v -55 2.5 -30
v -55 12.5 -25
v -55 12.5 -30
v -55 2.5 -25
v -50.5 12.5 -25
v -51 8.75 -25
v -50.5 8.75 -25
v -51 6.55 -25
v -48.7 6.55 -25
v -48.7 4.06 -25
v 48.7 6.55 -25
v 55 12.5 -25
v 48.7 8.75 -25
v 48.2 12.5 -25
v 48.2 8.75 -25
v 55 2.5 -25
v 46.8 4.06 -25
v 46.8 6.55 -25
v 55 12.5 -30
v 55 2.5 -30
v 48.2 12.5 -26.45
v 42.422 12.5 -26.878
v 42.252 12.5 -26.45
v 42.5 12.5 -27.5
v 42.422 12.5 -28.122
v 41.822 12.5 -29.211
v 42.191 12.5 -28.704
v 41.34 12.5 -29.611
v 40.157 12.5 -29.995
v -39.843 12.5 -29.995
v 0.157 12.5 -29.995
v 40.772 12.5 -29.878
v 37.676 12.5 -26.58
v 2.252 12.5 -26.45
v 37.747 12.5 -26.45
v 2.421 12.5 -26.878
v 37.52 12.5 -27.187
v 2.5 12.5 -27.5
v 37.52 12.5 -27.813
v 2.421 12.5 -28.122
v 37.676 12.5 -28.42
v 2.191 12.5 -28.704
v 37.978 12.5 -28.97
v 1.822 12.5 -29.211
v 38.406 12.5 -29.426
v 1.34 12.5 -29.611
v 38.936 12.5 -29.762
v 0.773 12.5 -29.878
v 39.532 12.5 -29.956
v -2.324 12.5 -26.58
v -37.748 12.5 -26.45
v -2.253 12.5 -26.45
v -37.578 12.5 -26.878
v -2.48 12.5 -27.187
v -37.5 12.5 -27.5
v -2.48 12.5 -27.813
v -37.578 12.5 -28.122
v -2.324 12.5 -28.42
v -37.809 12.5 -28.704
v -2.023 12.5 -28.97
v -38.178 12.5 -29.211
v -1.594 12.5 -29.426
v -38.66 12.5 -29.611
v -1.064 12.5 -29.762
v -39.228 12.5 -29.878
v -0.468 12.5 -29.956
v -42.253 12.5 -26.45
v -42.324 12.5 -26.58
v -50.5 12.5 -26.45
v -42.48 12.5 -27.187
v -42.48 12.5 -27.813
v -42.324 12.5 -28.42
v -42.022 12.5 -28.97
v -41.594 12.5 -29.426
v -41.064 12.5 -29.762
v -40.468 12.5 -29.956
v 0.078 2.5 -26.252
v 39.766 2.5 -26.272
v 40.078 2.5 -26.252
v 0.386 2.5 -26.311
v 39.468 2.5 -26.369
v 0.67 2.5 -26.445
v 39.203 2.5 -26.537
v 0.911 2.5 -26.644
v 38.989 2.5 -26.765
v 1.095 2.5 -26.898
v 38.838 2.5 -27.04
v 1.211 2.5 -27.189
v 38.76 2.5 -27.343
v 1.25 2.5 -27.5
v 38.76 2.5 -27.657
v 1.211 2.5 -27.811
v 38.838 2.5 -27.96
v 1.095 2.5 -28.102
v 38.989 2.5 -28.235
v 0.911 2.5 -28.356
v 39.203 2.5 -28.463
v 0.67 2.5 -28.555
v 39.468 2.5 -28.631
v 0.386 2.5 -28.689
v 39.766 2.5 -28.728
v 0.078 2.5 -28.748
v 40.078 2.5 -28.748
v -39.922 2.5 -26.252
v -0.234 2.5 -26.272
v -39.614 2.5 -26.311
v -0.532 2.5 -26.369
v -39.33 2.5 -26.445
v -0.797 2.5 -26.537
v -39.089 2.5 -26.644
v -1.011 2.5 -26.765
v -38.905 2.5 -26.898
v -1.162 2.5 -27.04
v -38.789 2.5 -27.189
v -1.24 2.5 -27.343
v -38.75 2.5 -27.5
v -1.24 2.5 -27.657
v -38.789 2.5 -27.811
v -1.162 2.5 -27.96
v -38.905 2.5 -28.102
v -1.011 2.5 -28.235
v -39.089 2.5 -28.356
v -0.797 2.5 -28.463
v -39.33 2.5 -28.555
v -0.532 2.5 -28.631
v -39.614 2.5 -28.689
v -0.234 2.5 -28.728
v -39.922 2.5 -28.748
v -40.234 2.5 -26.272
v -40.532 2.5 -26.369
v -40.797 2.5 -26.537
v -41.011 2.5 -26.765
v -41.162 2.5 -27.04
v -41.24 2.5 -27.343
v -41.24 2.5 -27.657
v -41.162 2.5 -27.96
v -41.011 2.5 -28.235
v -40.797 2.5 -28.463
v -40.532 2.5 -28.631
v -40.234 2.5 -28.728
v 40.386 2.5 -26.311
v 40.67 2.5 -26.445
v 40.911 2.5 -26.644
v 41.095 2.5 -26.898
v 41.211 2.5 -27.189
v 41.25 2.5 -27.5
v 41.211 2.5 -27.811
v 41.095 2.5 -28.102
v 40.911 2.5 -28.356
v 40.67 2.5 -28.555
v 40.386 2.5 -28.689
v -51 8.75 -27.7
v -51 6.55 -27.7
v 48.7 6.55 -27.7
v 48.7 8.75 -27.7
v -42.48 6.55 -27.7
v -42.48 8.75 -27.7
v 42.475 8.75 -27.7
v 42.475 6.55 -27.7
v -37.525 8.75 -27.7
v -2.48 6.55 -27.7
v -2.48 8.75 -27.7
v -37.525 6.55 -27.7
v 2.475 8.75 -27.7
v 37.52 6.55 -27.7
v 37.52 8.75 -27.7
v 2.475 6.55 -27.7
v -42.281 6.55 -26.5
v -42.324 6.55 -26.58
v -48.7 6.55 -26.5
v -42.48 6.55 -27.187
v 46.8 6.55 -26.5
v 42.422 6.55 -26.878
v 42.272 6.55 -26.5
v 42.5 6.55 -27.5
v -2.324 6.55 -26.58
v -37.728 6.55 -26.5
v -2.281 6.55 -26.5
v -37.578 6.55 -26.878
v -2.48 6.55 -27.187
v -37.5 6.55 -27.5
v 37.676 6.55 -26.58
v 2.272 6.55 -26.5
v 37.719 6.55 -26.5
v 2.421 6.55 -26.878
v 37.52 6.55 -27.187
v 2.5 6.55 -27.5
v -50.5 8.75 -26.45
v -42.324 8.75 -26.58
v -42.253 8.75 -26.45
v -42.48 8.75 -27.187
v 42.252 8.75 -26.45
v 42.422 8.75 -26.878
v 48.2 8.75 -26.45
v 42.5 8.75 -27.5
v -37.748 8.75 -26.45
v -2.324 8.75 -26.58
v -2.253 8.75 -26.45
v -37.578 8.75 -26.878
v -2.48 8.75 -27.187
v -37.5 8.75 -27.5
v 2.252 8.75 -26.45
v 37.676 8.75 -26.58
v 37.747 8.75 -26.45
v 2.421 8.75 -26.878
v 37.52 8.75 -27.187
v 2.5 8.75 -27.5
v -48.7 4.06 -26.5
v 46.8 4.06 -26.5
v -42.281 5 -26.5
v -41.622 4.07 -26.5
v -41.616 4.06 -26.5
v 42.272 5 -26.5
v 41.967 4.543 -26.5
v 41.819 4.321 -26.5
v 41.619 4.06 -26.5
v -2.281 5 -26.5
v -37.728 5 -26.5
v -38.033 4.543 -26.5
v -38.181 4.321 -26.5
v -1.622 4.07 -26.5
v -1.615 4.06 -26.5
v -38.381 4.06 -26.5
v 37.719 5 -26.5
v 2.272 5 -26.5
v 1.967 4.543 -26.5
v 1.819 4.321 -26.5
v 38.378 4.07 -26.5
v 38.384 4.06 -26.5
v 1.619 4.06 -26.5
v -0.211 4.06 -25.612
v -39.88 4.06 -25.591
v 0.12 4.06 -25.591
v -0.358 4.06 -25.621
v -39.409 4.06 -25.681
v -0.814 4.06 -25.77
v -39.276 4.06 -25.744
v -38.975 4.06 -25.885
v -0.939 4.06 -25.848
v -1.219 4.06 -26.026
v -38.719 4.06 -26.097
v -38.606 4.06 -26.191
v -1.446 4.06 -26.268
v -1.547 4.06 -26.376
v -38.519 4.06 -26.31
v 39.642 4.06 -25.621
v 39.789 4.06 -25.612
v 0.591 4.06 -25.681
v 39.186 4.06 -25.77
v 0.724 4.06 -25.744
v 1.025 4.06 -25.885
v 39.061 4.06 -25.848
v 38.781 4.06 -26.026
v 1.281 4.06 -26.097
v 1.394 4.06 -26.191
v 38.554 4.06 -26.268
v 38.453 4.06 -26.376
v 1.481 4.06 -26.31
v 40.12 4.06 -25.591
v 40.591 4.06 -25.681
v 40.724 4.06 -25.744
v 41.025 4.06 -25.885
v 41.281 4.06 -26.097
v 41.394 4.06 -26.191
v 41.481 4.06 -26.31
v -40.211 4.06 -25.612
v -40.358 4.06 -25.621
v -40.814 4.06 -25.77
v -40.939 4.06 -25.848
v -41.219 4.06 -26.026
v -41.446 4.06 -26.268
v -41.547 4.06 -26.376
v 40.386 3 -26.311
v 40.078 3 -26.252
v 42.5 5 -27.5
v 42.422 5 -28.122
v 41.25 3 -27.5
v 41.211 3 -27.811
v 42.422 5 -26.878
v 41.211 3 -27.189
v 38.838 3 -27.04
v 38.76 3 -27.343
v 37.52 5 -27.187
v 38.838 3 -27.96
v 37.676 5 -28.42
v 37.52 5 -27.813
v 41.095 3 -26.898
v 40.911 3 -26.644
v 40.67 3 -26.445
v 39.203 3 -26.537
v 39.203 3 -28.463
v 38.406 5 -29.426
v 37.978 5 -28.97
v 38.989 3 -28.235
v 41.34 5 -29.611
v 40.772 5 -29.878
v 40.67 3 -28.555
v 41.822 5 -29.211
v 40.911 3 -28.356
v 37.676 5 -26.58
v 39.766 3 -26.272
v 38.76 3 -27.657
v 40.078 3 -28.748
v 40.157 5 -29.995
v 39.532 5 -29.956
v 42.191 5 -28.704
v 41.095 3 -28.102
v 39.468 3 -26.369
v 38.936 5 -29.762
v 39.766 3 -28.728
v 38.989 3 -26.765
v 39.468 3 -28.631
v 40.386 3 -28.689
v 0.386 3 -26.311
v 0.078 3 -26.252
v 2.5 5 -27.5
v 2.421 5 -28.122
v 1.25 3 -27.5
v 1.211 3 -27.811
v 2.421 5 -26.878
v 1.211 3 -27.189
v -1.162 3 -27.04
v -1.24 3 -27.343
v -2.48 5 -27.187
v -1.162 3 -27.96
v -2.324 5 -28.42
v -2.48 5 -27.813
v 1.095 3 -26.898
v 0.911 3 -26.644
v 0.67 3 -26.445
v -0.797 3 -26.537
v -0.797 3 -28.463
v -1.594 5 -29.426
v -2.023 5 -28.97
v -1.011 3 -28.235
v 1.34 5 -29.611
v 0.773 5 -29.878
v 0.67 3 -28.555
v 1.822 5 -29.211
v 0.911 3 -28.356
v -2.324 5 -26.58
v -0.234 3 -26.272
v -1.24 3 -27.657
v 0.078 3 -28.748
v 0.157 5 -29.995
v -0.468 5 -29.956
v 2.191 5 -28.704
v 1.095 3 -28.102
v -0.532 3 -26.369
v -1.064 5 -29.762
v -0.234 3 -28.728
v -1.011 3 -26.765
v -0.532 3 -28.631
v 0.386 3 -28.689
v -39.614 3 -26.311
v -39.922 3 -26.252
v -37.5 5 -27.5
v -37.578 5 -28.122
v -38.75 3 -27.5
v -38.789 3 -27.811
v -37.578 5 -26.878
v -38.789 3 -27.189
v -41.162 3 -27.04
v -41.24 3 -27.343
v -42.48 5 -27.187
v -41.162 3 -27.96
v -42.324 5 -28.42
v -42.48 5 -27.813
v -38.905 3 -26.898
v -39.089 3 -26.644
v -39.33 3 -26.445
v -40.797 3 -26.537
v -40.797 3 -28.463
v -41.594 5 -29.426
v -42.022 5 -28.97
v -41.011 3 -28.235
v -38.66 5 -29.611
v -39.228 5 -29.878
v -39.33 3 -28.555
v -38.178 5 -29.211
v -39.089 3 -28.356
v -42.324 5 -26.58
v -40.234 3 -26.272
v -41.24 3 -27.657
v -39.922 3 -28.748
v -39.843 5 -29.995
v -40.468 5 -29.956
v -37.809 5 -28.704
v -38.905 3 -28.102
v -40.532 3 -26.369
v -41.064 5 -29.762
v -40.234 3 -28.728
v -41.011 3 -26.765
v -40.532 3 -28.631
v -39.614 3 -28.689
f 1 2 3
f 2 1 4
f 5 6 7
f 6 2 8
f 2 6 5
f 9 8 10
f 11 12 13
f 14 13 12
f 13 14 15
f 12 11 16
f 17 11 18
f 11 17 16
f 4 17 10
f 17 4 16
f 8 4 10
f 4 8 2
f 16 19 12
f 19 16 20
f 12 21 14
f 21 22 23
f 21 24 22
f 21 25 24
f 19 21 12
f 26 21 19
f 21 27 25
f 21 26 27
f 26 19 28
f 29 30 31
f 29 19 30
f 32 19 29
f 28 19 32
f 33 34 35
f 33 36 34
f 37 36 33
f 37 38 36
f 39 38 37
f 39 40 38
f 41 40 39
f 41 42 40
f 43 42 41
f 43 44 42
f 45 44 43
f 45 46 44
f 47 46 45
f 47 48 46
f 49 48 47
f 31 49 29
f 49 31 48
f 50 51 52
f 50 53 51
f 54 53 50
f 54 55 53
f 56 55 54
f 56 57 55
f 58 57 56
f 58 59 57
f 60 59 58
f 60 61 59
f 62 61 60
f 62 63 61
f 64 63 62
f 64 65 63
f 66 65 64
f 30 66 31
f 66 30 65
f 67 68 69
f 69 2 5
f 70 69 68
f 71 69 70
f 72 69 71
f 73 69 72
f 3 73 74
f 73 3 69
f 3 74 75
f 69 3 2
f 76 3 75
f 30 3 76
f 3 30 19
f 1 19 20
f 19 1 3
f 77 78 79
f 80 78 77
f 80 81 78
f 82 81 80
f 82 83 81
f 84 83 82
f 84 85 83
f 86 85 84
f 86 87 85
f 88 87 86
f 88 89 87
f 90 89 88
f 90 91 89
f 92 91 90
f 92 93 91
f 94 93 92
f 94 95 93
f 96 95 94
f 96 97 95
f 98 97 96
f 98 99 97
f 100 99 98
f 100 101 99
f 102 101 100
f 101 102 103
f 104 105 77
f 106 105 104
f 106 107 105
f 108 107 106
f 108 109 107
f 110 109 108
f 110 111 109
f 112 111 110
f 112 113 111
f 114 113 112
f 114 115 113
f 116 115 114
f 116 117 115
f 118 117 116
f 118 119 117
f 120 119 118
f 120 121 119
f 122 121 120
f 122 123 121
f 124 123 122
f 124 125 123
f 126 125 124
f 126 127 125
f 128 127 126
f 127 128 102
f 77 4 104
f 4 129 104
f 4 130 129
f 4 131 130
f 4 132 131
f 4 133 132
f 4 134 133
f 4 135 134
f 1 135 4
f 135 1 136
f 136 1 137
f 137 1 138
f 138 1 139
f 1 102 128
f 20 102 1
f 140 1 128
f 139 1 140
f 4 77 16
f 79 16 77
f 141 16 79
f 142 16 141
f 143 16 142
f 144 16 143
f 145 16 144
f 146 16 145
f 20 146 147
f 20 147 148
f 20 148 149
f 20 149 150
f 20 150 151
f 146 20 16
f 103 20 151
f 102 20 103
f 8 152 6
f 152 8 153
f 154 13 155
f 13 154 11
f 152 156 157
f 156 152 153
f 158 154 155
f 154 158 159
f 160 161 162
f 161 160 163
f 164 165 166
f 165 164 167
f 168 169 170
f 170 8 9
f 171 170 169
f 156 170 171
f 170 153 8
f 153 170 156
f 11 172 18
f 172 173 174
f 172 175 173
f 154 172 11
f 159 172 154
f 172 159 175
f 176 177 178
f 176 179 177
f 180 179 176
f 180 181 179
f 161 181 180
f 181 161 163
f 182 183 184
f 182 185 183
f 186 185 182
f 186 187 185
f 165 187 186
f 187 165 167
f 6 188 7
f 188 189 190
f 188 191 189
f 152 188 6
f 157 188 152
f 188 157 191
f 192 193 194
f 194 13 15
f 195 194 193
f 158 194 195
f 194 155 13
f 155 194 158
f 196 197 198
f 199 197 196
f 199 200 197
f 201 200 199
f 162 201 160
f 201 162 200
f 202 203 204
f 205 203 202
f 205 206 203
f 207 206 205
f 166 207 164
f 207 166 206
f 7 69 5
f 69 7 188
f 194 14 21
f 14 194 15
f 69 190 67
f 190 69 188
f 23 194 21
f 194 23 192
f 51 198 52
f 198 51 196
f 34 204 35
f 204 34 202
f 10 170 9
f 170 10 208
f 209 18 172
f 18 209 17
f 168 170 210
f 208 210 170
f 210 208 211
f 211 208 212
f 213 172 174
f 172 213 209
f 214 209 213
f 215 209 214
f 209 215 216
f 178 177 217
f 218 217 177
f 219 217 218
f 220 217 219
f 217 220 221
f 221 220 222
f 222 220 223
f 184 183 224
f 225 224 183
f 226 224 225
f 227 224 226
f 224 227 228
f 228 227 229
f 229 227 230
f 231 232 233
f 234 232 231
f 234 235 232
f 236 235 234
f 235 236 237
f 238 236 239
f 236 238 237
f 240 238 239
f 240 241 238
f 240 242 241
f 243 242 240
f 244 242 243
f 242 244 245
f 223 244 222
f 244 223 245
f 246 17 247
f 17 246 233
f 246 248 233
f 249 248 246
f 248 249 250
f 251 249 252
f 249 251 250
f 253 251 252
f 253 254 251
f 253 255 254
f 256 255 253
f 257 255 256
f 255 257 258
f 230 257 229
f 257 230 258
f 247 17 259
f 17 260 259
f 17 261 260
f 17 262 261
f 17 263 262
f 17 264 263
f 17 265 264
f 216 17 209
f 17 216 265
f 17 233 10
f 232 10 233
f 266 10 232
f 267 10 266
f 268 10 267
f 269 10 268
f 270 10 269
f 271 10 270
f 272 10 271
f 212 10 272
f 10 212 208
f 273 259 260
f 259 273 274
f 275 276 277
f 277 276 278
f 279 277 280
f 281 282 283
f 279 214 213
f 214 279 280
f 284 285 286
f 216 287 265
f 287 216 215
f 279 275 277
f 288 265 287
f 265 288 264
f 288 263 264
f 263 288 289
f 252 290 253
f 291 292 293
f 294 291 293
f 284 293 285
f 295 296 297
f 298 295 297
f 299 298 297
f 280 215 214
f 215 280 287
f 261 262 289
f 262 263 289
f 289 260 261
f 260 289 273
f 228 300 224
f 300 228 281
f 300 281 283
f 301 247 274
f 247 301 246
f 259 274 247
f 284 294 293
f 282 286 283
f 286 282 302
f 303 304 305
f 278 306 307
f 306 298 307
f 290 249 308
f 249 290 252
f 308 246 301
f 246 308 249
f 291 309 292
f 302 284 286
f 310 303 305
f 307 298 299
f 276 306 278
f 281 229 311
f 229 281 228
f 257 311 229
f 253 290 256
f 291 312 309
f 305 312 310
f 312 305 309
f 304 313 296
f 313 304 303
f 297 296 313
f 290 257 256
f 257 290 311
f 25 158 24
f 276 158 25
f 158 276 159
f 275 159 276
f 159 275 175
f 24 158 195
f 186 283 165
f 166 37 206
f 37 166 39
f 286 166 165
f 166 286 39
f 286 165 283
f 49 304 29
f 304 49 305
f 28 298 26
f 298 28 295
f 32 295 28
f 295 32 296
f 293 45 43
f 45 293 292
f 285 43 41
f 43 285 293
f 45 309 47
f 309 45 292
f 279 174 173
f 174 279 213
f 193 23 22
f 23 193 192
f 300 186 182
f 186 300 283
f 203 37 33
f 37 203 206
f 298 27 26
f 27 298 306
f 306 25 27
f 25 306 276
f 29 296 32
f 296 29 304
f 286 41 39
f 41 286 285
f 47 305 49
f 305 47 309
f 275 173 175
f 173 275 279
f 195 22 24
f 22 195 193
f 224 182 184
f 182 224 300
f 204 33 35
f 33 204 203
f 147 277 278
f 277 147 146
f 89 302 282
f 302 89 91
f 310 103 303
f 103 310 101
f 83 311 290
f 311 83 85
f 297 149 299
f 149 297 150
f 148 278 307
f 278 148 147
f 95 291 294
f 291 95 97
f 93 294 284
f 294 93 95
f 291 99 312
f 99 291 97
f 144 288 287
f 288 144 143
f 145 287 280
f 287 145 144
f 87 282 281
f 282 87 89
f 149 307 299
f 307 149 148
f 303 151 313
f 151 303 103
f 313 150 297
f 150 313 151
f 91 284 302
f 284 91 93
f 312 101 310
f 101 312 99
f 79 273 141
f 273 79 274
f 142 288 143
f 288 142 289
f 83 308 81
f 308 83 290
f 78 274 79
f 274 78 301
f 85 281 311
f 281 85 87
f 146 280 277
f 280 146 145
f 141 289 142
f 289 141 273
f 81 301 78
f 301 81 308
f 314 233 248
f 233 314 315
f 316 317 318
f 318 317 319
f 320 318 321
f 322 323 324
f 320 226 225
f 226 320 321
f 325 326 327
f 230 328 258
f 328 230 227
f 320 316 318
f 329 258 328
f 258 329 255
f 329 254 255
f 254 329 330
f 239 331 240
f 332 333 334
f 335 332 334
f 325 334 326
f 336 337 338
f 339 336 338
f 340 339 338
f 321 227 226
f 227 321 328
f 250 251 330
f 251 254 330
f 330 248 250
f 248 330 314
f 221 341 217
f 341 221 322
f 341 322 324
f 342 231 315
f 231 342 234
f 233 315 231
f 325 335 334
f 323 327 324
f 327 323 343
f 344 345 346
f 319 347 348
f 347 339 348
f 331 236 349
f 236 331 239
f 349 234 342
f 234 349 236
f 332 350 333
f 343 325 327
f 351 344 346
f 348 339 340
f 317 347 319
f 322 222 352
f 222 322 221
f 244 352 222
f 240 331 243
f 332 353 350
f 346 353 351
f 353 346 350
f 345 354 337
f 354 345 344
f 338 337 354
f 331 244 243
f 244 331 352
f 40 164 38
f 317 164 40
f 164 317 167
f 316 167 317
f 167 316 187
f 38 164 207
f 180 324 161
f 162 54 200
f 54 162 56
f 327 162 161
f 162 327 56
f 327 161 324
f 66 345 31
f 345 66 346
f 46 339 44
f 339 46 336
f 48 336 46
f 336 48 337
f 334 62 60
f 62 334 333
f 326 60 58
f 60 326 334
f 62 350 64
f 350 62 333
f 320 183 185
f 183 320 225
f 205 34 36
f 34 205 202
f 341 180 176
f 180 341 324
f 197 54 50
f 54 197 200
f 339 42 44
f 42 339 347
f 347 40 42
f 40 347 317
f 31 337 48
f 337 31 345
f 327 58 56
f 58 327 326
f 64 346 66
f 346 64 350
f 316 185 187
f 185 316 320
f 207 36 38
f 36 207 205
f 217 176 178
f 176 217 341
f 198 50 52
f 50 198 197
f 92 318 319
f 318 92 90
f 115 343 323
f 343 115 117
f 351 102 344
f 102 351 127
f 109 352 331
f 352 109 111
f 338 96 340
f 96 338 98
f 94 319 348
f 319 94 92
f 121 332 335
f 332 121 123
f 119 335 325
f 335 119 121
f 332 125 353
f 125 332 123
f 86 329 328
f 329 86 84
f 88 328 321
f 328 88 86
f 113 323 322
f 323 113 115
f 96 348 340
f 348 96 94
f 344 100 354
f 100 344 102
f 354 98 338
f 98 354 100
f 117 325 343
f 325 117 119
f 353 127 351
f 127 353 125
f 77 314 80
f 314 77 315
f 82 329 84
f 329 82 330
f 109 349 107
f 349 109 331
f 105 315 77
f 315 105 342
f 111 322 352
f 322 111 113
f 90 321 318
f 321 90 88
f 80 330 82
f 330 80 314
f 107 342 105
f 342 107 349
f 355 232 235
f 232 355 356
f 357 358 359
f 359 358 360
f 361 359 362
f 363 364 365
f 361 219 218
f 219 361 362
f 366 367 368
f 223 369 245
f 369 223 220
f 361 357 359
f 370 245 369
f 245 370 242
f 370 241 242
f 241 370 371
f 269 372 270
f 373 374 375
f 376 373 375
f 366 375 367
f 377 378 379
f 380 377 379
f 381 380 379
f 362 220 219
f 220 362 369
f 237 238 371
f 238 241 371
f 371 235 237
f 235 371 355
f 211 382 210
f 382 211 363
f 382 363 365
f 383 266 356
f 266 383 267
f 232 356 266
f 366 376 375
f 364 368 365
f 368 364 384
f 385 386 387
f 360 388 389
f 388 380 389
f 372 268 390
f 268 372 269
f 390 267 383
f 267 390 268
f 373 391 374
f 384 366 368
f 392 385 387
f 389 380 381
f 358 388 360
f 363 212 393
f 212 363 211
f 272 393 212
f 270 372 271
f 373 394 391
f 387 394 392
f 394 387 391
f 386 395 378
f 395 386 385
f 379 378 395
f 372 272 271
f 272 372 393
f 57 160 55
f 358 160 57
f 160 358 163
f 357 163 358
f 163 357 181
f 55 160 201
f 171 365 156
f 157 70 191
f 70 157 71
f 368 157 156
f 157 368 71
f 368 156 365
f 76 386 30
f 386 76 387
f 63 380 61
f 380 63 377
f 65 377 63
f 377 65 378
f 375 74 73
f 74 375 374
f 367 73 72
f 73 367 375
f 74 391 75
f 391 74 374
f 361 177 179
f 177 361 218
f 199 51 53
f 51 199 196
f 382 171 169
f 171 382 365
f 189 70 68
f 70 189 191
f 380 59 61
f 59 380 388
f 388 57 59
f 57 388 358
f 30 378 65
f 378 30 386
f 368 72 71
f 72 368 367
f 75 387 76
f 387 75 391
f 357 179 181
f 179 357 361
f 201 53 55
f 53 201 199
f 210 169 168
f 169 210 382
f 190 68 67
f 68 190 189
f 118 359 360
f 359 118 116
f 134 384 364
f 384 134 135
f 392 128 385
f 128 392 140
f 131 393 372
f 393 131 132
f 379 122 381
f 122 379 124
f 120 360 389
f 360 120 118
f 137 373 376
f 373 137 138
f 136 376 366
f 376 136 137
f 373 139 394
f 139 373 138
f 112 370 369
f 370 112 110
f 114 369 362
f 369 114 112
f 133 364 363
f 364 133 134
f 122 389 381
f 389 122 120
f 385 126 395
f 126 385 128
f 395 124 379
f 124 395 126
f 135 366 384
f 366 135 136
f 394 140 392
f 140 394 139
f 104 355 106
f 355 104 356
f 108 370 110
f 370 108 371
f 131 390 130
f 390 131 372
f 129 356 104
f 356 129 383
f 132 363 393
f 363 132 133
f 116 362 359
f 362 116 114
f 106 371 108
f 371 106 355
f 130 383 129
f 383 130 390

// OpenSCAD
// file: openscad-extra/src/countersink.scad
/*
Countersink depression for tapered screw heads.
*/

module make_countersink(d1=0, d2=0, h=0, outer=10, inner=0, $fn=25){
    /*
    d1 = shaft diameter
    d2 = head diameter
    h = height of taper
    outer = height of head mass
    inner = height of shaft mass, including taper
    */
    default_taper_height = 2;
    d1 = d1 ? d1 : 2.5;
    d2 = d2 ? d2 : 5;
    h = h ? h : default_taper_height;
    inner = (inner ? inner : 10) - default_taper_height;
    
    translate([0, 0, -default_taper_height/2])
    union(){
        
        // taper
        cylinder(d1=d1, d2=d2, h=h, center=true, $fn=$fn);
    
        // big top
    	translate([0, 0, h/2])
    	cylinder(d=d2, h=outer, center=false, $fn=$fn);
        
    	// lower bottom
    	translate([0, 0, -h/2-inner])
    	cylinder(d=d1, h=inner, center=false, $fn=$fn);
	}
}

make_countersink(inner=10);

color("blue")
translate([0,2,0])
cylinder(d=2.5, h=20, center=true, $fn=100);
// file: arduino_mega_mount.scad
use <openscad-extra/src/countersink.scad>;

// mega needs 3mm of clearance below it
module arduino_mega_mount(){
    difference(){
        for(i=[-1:2:1])
        translate([0,7.5,(25+2.5)*i])
        cube([110,10,5], center=true);
        
        translate([-1.15,7.65,-.75])
        color("orange")
        arduino_mega_board(buffer=0.5);

        color("red"){
            // top mount holes
            for(i=[0:2])
            translate([40-40*i,12.5,30-2.5])
            rotate([-90,0,0])
            make_countersink(d1=2.5, d2=5, inner=20);
            
            // bottom mount holes
            for(i=[0:2])
            translate([40-40*i,5,-(30-2.5)])
            rotate([-90,0,0])
            make_countersink(d1=2.5, d2=5, inner=20);
        }
    }
    
}

module arduino_mega_board(buffer=0){
    // main board
    color("green")
    cube([99.2+buffer,1.7+buffer,53.4+buffer], center=true);
    
    // electronics bounding box
    color("red")
    translate([0,6,0])
    cube([99.2-3+2+buffer,1.7+10.5+buffer,53.4-3+0.5+buffer], center=true);
    
    // bottom elec bb
    color("red")
    translate([2-1.8,-2.86+1/2+0.02,0])
    cube([95+buffer,2+buffer,50.5+0.5+buffer], center=true);
}

//mega_offset_y = -4; // flush
//mega_offset_y = -4+3; // minimum clearance
mega_offset_y = -4+4; // minimum clearance + extra for screw

if(0){
color("gray")
translate([-109.5,mega_offset_y,100])
rotate([-90,0,0])
import("electronics/arduino-mega-2560/Arduino_MEGA2560.stl");

translate([-109.5+99.2/2,-1.7/2+mega_offset_y,100-53.4/2])
arduino_mega_board(buffer=0.5);
}

if(0)
color("blue")
translate([-58.75, -66-5+55+5+2.5, 4.5+70])
//pelvis_cross_support();
rotate([90,0,0])
import("printable/pelvis_cross_support.stl");

translate([-58.75, -66-5+55+5+2.5, 4.5+70])
arduino_mega_mount();
// main file
use <arduino_mega_mount.scad>;

rotate([0,0,0])
difference(){
arduino_mega_mount();

translate([0,0,100/2])
cube([150,100,100], center=true);
}
